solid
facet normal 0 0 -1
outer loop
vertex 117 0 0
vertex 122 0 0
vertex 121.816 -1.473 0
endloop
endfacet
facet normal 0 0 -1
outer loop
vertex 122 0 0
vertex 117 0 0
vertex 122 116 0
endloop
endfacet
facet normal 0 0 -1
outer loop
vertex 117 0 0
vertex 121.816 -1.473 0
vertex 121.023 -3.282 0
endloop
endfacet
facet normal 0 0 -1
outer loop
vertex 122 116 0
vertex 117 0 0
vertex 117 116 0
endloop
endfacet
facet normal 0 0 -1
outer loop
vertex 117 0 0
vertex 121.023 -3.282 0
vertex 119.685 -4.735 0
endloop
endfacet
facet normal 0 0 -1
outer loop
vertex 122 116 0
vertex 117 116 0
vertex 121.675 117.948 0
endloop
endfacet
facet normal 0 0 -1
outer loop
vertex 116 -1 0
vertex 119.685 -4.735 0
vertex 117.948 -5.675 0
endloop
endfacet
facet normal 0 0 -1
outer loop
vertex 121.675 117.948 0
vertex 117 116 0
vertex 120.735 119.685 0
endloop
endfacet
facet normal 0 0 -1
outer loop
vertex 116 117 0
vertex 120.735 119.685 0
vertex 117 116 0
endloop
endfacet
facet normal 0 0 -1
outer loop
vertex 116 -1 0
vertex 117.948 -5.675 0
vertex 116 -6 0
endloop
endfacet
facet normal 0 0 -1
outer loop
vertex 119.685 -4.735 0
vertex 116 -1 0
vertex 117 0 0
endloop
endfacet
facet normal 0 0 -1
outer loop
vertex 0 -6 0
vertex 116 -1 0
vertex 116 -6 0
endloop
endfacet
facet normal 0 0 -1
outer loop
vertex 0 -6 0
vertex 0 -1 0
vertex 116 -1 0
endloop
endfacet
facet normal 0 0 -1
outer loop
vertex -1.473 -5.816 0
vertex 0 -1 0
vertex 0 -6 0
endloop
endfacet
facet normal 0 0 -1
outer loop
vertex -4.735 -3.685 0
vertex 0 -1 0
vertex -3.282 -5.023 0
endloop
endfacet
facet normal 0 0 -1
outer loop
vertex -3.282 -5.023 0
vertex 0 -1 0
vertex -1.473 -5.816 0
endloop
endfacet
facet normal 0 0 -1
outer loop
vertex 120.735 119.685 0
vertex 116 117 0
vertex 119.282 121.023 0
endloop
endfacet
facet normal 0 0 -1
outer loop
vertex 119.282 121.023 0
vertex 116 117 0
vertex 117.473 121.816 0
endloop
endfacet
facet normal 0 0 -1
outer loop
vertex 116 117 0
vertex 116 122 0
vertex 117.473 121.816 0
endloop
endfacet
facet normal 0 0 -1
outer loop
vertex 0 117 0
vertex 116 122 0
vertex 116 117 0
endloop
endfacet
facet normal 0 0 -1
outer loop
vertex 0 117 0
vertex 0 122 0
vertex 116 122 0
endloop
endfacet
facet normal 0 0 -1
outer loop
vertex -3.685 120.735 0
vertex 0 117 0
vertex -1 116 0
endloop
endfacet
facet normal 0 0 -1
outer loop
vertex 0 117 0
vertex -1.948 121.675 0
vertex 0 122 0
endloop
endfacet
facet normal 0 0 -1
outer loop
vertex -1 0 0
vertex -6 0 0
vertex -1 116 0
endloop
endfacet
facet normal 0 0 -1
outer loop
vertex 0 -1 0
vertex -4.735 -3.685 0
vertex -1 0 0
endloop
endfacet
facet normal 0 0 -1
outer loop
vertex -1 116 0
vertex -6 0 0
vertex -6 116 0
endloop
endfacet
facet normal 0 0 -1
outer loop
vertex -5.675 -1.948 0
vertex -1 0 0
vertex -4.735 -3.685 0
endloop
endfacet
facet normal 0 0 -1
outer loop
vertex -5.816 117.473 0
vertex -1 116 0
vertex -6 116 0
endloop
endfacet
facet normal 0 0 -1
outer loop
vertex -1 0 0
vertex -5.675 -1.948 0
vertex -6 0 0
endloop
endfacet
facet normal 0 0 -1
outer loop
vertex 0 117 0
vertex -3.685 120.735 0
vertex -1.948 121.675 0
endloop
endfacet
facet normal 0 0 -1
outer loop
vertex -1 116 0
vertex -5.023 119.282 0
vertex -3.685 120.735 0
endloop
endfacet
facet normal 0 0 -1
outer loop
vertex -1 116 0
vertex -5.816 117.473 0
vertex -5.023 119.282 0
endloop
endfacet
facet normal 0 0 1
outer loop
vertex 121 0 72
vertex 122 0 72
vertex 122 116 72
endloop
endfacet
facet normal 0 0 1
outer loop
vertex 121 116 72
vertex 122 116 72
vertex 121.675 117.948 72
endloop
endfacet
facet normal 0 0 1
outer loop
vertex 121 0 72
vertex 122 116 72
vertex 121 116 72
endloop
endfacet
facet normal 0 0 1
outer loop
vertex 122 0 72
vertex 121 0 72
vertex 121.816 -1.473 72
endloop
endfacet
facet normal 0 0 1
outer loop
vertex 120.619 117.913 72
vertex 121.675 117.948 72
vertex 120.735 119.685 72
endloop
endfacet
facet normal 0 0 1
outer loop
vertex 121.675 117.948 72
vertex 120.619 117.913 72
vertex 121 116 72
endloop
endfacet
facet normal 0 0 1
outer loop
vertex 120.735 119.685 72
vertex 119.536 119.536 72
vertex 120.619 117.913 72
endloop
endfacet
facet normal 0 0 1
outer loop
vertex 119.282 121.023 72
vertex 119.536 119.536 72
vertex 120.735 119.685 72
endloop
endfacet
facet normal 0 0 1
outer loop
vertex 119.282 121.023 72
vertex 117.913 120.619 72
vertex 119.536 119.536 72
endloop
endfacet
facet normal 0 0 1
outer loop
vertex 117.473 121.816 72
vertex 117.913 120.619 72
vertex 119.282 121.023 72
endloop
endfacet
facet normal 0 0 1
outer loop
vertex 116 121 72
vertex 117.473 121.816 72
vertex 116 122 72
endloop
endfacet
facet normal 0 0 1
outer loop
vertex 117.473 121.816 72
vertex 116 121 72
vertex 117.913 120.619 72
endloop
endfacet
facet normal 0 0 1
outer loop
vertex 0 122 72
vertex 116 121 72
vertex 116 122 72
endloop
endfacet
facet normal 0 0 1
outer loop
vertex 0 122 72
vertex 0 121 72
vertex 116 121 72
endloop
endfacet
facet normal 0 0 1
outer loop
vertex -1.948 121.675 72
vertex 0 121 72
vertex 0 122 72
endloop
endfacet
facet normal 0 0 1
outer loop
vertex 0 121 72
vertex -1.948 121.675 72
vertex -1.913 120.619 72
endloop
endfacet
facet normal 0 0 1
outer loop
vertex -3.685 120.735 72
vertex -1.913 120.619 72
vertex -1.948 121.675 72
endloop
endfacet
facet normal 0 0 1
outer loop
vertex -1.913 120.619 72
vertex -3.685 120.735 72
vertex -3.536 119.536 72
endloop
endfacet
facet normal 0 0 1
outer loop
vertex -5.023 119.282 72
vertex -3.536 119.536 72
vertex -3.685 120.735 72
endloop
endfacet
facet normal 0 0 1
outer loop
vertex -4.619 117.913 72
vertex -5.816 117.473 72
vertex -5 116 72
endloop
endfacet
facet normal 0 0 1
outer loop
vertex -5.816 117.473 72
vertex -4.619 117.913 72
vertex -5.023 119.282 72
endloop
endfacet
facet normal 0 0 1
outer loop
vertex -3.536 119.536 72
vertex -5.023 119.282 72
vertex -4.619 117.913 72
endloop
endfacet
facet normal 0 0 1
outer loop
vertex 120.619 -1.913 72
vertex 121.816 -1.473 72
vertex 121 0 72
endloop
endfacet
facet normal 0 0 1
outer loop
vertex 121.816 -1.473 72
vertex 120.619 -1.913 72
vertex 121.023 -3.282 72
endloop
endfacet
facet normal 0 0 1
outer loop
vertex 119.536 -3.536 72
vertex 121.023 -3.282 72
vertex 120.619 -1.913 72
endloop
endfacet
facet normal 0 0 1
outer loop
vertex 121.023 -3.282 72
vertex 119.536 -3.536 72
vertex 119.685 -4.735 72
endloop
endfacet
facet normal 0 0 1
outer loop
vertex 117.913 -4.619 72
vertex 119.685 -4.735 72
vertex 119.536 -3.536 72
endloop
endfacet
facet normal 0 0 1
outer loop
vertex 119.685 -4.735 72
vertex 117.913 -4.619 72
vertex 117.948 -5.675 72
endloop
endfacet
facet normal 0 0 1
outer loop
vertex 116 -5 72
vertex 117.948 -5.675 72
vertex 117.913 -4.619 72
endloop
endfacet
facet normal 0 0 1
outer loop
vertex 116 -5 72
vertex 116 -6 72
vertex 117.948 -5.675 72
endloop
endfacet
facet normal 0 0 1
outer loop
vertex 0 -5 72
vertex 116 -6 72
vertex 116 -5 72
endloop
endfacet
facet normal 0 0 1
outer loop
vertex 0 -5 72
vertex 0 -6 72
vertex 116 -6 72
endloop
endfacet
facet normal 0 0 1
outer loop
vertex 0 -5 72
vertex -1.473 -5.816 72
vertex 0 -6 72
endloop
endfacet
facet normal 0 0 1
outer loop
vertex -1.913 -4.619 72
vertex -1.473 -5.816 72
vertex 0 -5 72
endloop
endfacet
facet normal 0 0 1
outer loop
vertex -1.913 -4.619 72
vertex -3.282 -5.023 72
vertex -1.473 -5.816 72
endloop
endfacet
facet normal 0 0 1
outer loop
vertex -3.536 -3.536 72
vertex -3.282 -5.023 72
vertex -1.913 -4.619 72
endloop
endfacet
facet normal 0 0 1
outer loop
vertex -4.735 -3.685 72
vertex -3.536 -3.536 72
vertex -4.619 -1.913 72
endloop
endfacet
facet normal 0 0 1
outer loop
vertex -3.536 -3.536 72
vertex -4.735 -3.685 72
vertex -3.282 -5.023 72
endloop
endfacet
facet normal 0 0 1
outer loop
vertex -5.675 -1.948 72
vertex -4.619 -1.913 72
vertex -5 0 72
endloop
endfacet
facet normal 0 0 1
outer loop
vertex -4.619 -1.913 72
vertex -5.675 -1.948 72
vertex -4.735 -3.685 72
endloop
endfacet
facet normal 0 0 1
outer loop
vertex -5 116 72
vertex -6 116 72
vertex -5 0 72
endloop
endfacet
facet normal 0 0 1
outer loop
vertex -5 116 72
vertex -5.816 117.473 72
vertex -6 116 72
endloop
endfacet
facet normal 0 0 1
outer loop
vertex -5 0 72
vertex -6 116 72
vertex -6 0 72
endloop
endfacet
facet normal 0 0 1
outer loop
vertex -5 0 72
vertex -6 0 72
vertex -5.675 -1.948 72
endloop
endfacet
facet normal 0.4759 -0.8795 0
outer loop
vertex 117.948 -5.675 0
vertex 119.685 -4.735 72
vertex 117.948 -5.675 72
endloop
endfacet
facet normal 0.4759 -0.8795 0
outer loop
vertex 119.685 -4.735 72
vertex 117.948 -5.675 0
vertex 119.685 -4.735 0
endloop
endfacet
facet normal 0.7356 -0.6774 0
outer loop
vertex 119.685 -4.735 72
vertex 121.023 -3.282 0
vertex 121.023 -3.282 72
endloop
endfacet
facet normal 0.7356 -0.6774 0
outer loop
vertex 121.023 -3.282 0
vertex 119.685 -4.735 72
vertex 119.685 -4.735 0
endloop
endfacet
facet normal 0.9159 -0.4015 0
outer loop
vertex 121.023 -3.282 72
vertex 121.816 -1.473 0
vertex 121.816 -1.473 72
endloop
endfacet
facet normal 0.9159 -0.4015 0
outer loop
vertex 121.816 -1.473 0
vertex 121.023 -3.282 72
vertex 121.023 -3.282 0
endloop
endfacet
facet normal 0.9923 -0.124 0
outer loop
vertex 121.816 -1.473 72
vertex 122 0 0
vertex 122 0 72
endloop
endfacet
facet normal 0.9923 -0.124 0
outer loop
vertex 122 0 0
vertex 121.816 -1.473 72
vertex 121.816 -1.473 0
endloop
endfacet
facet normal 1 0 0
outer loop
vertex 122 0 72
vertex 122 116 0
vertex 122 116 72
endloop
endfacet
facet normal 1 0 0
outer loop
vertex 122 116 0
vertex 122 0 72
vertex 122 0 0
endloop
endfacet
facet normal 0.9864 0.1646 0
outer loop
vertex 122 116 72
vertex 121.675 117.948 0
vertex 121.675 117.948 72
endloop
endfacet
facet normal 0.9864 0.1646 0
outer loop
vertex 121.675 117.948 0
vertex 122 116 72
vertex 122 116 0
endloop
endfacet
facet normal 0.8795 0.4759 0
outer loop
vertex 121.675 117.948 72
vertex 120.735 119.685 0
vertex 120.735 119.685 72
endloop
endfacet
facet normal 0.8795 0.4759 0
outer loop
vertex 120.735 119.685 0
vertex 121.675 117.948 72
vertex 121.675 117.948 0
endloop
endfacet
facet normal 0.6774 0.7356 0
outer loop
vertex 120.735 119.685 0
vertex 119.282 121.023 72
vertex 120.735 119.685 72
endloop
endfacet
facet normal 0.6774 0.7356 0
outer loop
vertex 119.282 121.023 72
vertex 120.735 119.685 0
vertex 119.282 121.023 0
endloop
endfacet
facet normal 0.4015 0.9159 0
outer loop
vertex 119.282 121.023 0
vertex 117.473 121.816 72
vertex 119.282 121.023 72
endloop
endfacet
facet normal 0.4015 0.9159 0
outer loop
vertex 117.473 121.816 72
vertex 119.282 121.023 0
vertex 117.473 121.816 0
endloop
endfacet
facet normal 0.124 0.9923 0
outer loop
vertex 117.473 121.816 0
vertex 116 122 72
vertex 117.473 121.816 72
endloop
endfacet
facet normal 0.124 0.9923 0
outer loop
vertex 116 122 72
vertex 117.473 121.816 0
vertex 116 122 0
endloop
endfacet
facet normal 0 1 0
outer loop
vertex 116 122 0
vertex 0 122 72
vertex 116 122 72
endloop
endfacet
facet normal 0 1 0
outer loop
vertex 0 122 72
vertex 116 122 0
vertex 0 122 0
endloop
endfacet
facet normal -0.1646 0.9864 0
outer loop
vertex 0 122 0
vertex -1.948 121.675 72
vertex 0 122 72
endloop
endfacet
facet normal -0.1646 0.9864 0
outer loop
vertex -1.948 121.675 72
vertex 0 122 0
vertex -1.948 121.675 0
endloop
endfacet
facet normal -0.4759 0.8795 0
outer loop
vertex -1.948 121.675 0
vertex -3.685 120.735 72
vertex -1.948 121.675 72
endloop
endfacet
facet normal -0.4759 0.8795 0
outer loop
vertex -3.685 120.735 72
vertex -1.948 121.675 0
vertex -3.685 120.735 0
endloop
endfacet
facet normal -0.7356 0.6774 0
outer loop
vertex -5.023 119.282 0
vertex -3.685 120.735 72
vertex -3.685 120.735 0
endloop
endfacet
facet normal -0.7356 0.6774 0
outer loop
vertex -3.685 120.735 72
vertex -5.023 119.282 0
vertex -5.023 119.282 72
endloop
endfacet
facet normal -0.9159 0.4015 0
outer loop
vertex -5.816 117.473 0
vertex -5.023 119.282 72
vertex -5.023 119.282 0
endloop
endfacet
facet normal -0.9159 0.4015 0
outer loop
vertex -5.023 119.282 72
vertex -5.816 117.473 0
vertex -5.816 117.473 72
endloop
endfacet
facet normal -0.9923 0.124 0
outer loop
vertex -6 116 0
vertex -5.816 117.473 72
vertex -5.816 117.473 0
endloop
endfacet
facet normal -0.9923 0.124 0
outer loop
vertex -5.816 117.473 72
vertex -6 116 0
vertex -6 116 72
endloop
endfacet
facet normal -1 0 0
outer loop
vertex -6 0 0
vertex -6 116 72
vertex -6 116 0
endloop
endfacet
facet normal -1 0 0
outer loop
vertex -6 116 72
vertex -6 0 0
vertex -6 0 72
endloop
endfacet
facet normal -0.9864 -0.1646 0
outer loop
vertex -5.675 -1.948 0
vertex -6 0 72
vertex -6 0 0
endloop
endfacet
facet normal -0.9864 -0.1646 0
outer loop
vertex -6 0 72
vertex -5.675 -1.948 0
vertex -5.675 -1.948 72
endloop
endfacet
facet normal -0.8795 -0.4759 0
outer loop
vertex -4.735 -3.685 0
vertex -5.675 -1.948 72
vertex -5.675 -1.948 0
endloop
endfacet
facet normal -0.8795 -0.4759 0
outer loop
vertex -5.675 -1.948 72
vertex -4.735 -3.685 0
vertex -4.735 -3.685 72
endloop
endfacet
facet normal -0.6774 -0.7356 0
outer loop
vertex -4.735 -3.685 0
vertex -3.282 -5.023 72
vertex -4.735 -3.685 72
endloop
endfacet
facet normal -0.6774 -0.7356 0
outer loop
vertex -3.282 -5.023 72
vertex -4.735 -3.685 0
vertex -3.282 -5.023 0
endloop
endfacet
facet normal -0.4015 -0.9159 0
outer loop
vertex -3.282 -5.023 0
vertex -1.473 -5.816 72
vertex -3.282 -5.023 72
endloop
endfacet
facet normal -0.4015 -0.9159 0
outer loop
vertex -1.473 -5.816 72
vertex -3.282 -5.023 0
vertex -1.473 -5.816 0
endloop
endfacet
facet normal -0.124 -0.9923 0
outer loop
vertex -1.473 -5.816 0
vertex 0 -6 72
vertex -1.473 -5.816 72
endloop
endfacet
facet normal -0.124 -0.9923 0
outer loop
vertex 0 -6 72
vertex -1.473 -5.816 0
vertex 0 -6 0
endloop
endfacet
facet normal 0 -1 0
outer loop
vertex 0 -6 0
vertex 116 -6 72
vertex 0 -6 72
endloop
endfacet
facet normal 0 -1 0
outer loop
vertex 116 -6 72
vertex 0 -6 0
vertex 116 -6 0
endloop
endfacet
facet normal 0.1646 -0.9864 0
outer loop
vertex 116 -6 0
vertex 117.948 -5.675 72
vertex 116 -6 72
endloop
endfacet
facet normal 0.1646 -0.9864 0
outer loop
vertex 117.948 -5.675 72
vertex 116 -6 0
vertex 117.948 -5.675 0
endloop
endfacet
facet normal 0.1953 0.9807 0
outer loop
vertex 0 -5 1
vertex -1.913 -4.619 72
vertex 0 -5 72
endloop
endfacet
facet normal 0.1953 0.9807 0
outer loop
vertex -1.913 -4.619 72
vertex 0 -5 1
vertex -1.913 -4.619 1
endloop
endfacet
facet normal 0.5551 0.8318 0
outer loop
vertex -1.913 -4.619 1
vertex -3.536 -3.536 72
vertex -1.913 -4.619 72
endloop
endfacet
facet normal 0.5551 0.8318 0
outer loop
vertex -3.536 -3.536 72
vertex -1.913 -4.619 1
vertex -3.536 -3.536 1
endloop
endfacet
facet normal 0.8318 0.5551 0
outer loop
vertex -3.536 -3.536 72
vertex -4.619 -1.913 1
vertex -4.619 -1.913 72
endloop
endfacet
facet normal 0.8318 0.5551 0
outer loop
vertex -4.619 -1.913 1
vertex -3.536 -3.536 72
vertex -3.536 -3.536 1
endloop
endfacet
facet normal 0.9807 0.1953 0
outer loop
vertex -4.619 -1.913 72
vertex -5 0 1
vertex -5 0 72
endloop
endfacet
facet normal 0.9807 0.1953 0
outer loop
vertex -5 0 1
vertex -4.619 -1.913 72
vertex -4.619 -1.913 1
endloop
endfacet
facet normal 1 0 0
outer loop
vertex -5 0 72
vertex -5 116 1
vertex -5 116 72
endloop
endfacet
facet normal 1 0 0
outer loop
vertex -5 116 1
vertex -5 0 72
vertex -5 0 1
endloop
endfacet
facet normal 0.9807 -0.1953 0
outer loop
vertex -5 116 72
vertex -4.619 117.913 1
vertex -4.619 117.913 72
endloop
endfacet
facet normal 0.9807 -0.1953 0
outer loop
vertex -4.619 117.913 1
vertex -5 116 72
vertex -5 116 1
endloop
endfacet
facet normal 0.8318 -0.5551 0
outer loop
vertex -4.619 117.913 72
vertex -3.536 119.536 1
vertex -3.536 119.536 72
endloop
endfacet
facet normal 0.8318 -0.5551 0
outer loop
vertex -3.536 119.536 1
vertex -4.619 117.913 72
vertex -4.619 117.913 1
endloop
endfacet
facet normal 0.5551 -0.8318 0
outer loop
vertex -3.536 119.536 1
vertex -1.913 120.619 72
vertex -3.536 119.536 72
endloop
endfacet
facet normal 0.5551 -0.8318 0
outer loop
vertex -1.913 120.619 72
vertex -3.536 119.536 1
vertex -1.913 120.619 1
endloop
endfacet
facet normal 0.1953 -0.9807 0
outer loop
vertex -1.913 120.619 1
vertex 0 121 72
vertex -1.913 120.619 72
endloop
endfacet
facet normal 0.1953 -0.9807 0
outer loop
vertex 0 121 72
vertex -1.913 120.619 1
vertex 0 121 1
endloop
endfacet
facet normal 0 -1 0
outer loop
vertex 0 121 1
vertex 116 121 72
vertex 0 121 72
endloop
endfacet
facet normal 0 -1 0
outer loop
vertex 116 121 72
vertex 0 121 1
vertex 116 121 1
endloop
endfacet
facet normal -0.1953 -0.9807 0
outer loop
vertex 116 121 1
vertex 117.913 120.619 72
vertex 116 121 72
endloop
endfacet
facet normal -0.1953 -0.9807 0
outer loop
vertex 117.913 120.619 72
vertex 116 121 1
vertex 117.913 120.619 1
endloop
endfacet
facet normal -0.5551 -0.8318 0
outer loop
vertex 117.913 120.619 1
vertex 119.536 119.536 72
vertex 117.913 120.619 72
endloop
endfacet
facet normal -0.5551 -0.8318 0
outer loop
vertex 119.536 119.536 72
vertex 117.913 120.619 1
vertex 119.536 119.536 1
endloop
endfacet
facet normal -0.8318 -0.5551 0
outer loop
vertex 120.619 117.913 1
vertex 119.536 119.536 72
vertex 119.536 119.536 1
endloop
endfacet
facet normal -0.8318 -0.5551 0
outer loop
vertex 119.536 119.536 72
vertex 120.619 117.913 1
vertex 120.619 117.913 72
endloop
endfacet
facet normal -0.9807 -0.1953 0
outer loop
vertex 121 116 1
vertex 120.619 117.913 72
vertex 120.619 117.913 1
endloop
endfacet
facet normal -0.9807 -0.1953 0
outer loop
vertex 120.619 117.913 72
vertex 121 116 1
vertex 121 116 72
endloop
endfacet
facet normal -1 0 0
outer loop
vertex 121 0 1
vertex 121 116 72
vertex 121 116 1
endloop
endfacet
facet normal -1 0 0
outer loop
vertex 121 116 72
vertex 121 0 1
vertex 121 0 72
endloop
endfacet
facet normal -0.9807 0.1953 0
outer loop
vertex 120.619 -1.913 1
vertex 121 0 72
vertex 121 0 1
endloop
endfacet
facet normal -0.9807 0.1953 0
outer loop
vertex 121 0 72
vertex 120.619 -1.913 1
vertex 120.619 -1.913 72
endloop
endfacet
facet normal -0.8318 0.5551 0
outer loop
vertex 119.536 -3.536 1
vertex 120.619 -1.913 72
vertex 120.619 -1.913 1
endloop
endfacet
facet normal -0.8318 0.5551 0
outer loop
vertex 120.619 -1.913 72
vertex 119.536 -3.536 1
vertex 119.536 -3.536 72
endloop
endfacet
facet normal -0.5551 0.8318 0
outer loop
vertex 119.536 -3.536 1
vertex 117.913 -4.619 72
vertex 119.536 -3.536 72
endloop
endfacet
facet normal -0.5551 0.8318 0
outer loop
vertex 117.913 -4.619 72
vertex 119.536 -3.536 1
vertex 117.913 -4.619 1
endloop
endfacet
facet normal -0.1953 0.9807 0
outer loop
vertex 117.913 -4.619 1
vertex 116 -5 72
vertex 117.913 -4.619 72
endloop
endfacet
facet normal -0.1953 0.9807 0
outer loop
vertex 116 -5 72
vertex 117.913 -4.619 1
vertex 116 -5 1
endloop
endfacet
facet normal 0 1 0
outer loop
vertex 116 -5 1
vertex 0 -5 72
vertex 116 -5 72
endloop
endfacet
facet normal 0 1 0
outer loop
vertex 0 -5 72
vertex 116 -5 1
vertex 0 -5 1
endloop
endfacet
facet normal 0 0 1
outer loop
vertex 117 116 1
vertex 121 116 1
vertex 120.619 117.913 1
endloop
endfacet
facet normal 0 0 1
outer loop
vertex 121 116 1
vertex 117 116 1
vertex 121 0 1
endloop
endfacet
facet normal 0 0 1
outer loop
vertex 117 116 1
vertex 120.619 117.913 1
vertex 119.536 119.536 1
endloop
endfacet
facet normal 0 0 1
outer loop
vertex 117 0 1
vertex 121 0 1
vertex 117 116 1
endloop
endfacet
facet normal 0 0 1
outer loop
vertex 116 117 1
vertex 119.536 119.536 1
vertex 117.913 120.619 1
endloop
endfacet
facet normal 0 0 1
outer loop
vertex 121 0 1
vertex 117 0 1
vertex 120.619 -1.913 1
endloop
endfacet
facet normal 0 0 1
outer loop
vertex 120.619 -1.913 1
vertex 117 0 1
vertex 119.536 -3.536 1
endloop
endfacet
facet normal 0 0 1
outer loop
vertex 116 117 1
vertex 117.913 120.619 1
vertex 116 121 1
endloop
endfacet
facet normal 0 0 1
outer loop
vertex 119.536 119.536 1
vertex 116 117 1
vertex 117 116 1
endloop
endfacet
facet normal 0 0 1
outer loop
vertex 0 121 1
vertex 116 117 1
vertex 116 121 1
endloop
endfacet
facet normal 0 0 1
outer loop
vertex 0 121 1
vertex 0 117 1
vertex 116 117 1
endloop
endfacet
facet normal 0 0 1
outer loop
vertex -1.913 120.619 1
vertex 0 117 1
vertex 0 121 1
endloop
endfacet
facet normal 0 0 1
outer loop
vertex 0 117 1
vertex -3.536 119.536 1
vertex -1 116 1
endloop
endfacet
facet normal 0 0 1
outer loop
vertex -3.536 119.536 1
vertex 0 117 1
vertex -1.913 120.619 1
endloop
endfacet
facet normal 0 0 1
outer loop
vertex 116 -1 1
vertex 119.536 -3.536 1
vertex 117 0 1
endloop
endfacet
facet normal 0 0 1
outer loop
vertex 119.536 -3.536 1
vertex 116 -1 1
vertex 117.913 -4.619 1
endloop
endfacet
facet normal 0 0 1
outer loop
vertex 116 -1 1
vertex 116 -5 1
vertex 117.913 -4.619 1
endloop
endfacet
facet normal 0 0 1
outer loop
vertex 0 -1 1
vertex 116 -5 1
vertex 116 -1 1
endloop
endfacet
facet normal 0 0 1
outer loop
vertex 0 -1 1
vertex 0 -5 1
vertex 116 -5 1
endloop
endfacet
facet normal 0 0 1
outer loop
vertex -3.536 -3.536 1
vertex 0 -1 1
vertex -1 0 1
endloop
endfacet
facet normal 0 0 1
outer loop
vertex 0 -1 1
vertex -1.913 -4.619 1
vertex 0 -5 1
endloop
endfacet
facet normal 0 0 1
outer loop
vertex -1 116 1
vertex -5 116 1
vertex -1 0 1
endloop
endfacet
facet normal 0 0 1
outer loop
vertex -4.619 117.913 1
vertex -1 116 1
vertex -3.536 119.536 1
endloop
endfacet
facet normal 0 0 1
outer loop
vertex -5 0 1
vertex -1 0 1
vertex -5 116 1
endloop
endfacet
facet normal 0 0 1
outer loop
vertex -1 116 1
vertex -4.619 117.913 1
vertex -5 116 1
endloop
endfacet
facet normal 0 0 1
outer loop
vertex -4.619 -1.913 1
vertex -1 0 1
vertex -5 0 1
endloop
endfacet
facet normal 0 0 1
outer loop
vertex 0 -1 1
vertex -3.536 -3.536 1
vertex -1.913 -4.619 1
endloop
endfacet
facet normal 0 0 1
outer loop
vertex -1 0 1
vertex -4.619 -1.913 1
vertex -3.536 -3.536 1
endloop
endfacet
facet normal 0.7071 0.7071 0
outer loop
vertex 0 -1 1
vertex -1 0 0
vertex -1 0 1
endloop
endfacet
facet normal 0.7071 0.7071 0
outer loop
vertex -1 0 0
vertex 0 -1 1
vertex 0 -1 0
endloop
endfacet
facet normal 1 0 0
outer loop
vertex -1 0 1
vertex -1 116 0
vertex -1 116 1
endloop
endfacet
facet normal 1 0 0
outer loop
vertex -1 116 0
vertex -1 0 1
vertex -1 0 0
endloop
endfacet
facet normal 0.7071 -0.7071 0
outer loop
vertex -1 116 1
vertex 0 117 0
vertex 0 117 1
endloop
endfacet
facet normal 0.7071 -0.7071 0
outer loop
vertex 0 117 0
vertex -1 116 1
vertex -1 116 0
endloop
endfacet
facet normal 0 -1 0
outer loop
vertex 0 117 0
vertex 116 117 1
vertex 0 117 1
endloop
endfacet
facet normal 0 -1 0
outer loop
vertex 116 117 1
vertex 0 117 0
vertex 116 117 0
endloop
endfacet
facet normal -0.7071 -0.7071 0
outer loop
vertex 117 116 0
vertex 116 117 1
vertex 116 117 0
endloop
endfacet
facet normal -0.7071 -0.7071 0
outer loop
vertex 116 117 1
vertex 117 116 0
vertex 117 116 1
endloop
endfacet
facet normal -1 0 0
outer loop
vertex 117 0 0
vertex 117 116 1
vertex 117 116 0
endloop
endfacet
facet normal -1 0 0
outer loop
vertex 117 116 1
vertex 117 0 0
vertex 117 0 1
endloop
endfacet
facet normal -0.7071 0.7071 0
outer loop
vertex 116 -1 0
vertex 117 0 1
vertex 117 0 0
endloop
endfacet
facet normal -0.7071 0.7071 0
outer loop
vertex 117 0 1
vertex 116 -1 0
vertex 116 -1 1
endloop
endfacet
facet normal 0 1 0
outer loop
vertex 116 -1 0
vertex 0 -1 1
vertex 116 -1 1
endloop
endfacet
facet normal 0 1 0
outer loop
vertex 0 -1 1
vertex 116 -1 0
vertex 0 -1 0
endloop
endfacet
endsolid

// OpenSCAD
linear_extrude(10*3+30+10+2)
difference(){
offset(6)
square([126-10,126-10]);
offset(5)
square([126-10,126-10]);
}


linear_extrude(1)
difference(){
offset(5)
square([126-10,126-10]);
offset(1)
square([126-10,126-10]);
}
